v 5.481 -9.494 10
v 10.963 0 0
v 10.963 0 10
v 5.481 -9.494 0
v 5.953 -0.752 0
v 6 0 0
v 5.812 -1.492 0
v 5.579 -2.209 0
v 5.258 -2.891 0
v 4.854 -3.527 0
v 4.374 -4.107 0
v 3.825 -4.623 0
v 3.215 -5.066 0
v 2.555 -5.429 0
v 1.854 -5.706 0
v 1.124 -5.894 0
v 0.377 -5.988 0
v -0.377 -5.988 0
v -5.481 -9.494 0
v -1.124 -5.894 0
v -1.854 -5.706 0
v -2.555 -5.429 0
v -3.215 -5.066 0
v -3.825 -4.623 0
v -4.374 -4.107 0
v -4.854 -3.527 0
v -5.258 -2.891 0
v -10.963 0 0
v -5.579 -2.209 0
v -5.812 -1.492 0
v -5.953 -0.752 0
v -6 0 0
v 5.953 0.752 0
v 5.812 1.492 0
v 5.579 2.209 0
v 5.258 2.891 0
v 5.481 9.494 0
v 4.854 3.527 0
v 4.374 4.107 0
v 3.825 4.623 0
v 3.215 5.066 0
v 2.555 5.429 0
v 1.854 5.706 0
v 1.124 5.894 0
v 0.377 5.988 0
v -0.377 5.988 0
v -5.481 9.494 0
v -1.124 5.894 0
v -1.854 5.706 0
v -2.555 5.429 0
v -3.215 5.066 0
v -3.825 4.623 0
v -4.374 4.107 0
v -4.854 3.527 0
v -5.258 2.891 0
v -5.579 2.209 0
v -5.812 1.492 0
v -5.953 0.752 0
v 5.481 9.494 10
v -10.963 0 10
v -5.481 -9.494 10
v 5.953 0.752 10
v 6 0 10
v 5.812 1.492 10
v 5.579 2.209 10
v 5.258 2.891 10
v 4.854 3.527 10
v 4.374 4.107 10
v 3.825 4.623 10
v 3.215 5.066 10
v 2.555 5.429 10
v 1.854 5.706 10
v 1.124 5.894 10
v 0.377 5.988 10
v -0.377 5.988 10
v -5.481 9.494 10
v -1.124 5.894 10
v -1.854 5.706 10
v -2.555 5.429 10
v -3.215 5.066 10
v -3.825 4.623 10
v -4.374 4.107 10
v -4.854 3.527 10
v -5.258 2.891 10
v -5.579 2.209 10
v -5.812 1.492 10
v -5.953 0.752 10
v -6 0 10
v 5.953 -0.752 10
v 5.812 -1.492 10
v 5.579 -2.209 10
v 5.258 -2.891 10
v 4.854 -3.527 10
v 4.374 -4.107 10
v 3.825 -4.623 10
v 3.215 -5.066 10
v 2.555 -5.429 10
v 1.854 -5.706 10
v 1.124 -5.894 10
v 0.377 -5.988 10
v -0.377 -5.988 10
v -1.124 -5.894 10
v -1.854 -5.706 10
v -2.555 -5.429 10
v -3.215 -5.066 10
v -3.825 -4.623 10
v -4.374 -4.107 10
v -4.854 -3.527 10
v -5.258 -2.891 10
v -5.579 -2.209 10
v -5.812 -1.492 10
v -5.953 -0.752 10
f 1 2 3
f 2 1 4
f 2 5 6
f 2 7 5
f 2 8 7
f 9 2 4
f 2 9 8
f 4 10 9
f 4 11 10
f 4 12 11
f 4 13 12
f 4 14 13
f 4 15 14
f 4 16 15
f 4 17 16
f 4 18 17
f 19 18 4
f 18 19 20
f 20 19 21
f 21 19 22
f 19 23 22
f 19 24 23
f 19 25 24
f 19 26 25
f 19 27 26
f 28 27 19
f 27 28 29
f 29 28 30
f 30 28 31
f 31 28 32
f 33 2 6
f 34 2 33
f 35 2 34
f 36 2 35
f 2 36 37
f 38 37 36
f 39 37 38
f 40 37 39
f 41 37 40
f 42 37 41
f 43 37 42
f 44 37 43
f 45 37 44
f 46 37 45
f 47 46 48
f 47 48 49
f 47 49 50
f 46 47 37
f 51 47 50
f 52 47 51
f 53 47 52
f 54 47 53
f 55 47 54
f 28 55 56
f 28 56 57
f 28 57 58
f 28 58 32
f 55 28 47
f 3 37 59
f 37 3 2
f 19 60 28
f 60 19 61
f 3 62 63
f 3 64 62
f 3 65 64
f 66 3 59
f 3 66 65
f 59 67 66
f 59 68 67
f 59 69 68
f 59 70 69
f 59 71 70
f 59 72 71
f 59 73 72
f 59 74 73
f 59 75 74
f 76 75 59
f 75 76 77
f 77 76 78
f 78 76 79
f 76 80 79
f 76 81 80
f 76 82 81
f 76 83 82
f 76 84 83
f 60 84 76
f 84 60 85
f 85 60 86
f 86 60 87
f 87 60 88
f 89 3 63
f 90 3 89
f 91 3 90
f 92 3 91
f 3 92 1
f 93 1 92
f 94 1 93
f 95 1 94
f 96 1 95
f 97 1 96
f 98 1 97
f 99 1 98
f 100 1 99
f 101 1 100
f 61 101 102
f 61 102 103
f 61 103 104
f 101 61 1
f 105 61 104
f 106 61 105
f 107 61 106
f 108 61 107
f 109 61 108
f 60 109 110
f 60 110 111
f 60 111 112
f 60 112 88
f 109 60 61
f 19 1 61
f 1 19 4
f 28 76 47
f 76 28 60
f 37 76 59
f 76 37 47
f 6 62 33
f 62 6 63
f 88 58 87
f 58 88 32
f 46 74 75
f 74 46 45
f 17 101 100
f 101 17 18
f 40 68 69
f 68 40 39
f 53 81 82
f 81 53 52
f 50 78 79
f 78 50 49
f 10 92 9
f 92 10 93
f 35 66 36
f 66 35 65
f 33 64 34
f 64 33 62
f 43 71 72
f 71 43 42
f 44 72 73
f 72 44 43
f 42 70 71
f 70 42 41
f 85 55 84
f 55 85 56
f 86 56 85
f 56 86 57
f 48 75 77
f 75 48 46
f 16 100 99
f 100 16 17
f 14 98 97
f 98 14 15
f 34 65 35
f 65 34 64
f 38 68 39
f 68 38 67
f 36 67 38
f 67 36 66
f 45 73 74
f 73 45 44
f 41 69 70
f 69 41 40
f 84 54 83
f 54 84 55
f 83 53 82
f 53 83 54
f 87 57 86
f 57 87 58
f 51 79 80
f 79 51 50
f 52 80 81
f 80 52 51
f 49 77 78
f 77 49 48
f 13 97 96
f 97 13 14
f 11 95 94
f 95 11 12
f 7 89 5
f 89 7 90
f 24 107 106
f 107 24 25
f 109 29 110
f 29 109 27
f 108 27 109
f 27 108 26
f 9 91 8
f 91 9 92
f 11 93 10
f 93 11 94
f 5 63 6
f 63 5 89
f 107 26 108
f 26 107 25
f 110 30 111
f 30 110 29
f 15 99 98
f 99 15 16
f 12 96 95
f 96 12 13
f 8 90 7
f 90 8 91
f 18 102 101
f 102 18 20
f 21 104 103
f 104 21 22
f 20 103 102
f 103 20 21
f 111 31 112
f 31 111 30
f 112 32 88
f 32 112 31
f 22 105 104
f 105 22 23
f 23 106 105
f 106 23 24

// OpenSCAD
$fn = 50;


difference() {
	union() {
		translate(v = [0, 0, 0]) {
			rotate(a = [0, 0, 0]) {
				translate(v = [0, 0, 0]) {
					rotate(a = [0, 0, 0]) {
						linear_extrude(height = 10) {
							polygon(points = [[10.9630000000, 0.0000000000], [5.4815000000, 9.4942365017], [-5.4815000000, 9.4942365017], [-10.9630000000, 0.0000000000], [-5.4815000000, -9.4942365017], [5.4815000000, -9.4942365017]]);
						}
					}
				}
			}
		}
	}
	union() {
		translate(v = [0, 0, -10]) {
			rotate(a = [0, 0, 0]) {
				cylinder(h = 100, r = 6.0000000000);
			}
		}
	}
}
